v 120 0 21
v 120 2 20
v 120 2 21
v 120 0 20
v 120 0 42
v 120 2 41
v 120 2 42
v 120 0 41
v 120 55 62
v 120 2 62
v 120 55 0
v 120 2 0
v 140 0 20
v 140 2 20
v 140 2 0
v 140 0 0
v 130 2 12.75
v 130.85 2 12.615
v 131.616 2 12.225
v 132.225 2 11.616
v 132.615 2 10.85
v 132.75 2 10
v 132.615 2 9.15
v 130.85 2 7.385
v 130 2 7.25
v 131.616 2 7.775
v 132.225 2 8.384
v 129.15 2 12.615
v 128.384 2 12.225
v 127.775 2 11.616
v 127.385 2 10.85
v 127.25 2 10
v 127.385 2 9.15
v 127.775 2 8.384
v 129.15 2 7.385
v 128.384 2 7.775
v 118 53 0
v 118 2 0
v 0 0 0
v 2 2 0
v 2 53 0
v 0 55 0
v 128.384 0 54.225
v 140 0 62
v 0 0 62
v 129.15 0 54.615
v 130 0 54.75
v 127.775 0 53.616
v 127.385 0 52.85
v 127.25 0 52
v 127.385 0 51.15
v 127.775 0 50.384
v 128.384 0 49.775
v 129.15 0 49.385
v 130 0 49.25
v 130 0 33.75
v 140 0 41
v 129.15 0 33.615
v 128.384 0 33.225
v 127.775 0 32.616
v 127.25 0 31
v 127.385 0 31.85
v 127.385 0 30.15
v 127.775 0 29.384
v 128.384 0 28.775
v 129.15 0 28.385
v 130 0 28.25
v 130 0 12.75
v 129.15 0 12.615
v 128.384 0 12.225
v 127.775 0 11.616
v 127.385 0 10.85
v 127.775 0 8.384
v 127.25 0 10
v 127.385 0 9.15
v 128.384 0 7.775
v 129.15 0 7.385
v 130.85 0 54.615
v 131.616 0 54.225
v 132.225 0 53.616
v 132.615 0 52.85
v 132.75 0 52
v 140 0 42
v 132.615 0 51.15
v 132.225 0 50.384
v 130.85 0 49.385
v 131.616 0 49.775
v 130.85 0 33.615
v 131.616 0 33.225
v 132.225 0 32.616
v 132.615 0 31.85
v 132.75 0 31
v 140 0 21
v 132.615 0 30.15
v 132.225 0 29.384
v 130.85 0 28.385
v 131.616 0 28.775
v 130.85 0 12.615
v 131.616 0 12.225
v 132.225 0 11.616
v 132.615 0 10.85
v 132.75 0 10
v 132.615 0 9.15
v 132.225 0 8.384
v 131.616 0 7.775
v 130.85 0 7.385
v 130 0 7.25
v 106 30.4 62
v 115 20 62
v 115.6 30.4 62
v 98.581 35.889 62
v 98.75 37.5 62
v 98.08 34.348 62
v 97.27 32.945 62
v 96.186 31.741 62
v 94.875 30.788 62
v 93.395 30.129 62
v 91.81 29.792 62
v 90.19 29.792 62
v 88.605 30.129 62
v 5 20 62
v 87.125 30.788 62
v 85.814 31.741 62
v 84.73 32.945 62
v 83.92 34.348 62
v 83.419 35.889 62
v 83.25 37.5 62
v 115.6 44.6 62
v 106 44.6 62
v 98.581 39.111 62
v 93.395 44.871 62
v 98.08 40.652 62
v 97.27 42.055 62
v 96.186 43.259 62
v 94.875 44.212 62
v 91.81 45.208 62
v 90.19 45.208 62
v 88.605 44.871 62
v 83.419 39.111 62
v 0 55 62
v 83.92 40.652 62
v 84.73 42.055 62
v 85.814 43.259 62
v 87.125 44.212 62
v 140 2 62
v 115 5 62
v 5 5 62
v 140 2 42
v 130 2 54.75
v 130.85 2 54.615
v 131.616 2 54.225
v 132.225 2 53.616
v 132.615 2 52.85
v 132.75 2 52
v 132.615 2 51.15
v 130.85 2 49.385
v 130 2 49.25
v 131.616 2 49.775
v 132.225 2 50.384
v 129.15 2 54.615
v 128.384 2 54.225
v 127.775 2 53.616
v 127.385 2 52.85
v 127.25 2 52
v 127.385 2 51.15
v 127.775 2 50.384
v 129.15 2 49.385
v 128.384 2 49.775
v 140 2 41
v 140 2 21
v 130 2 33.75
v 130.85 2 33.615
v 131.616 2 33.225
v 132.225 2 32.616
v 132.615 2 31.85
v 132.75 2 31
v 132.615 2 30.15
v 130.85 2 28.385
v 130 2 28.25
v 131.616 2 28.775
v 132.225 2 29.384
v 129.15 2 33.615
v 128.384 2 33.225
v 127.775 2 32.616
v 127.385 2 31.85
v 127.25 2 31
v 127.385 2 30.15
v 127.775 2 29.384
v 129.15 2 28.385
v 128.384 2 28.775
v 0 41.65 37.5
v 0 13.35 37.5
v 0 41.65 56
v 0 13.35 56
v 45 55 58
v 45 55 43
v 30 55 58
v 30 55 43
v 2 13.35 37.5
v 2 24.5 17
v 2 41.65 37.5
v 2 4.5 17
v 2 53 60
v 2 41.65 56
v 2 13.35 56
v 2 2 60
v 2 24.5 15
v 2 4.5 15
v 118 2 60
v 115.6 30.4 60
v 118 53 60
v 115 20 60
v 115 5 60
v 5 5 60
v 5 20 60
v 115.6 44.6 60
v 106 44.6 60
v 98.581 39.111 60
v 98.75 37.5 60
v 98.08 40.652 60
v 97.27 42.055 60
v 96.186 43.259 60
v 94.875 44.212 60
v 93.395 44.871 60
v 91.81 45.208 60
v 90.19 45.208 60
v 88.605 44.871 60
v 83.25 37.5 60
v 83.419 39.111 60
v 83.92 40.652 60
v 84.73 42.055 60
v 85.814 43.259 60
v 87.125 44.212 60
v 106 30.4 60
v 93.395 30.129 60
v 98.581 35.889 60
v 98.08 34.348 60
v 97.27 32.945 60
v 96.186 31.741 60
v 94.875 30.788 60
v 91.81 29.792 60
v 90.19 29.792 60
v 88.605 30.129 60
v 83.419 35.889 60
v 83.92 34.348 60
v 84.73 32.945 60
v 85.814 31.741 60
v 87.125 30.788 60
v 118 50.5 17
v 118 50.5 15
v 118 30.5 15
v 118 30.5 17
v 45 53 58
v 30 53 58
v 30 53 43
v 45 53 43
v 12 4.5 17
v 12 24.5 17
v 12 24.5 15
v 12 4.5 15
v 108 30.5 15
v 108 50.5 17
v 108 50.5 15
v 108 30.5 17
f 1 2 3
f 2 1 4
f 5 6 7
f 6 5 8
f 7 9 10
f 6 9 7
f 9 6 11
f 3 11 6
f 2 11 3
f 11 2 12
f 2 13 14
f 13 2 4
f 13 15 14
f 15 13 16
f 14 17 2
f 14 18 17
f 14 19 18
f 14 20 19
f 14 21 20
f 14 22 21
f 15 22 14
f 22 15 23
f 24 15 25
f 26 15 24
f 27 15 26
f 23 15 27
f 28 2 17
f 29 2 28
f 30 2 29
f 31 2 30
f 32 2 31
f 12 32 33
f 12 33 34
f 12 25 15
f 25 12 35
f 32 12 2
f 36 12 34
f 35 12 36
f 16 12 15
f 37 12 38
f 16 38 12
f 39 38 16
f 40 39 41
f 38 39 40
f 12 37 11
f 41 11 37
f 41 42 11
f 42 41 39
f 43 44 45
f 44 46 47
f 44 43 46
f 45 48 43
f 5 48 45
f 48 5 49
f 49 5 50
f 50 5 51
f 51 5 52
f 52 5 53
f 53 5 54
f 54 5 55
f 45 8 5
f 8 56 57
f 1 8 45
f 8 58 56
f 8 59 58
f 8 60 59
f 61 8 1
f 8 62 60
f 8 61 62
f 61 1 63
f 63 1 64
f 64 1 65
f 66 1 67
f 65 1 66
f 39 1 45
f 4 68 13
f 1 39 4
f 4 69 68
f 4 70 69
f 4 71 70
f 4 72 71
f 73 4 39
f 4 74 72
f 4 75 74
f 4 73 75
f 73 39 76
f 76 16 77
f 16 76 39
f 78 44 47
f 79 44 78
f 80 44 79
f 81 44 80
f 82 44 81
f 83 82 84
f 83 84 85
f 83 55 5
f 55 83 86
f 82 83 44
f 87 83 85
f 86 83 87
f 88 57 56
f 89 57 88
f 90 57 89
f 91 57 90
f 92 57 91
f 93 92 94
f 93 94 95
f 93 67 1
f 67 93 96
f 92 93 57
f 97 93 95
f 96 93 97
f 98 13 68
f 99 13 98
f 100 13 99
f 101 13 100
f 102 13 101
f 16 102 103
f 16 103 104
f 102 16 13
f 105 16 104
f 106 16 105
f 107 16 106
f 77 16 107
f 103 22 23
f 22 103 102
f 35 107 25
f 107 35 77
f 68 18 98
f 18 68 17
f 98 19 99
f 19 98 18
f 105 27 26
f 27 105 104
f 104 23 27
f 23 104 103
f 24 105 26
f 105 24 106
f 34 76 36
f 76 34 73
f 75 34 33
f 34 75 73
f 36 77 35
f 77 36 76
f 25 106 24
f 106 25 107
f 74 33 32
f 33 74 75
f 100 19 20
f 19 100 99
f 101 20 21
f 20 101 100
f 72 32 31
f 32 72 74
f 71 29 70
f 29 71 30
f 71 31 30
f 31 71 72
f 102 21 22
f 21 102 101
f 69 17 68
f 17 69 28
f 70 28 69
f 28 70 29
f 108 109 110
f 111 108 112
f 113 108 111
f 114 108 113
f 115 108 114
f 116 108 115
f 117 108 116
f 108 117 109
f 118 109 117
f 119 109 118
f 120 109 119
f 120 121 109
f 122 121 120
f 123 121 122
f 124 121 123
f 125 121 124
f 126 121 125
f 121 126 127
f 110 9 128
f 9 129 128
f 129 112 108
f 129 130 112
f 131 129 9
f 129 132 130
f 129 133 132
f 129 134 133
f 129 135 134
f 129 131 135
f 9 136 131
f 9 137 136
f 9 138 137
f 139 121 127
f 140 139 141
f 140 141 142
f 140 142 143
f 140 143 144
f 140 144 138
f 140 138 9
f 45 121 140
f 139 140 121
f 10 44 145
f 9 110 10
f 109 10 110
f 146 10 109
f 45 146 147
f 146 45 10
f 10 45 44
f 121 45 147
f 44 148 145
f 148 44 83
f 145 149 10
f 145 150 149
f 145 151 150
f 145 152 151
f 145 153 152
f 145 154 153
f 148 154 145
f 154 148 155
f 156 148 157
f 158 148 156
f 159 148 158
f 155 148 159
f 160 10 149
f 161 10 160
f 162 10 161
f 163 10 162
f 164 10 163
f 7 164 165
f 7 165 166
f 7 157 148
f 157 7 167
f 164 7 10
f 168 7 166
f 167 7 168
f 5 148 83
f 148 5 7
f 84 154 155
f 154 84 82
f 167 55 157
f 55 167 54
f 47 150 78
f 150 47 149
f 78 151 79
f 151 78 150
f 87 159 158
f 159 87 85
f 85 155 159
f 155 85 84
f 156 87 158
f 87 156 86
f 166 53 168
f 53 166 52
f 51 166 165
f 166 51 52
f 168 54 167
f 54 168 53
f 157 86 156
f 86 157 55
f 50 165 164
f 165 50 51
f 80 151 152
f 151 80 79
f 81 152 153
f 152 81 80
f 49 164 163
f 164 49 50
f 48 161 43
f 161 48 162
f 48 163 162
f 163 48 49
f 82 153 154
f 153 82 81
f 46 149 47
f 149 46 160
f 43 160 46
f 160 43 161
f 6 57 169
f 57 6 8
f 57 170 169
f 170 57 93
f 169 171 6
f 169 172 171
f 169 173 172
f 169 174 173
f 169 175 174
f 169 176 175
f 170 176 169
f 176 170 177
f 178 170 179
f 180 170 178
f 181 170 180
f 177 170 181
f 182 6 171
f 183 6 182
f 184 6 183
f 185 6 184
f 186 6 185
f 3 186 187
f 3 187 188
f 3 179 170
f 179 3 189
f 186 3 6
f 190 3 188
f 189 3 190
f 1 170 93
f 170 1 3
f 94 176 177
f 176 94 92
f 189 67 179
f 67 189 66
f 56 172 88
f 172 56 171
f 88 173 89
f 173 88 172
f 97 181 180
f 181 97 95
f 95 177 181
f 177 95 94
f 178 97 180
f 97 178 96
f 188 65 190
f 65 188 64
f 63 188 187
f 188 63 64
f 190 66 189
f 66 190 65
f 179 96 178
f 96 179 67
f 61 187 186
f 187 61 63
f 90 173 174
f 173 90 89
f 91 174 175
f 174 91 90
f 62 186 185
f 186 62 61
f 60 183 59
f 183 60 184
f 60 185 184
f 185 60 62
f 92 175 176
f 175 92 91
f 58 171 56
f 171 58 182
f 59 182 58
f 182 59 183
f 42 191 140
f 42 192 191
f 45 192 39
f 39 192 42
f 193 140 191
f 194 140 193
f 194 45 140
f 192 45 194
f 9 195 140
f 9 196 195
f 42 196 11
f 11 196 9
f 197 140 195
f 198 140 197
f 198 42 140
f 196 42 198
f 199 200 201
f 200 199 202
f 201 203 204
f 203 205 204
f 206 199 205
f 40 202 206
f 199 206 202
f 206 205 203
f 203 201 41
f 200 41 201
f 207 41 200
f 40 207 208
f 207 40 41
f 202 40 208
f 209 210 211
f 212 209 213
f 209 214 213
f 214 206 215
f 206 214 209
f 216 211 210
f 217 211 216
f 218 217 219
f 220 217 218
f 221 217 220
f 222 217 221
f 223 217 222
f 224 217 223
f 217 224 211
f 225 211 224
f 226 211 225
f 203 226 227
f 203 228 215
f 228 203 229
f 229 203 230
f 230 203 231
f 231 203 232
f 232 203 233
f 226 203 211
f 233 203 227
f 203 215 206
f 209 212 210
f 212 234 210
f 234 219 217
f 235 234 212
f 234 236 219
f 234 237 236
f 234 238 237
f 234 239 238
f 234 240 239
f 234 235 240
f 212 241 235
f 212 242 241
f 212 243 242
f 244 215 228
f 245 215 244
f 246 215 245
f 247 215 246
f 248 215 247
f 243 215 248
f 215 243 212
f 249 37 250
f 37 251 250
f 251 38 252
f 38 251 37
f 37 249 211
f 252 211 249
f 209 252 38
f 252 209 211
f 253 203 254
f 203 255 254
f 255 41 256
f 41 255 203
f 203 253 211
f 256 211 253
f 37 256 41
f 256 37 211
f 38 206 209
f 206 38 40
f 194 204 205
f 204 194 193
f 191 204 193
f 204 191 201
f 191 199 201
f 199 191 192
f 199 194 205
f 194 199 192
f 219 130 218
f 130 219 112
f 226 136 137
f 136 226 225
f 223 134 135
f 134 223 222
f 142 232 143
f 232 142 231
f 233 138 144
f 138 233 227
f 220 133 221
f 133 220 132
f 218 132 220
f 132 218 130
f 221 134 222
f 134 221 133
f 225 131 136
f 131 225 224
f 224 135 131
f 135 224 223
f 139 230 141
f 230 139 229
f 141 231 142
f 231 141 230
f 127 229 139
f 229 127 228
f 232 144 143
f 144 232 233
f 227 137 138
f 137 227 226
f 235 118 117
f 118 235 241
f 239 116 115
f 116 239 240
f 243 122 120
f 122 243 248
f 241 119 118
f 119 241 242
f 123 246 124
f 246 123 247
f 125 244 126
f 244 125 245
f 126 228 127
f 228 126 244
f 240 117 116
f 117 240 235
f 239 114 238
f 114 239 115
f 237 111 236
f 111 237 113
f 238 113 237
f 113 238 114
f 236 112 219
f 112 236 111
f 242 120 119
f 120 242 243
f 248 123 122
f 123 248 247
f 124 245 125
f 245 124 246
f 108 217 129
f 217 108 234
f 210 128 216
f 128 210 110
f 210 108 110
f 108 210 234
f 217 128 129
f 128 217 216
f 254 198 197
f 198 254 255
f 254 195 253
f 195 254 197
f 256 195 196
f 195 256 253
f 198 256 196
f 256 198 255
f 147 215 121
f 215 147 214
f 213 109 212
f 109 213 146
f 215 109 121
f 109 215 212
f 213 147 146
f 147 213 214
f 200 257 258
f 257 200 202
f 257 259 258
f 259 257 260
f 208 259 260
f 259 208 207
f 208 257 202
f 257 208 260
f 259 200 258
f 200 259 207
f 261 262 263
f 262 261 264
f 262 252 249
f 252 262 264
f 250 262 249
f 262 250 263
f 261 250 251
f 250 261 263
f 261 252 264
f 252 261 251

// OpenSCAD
BaseWidth = 116;
BaseDepth = 51;
BaseHeightTop = 60;

WallThickness = 2;

AnchorWidth = 20;
AnchorHeight = 20;
AhcnorHoleDiameter = 5.5;

PowerInputHoleWidth = 28.3;
PowerInputHoleHeight= 18.5;

ButtonHoleDiameter = 15.5;

PowerSwithLength = 14.2;
PowerSwithWidth = 9.6;

BackWindowWidth  = 110;
BackWindowHeight = 15;

// Top main body
difference() {
    cube(size=[BaseWidth+2*WallThickness, BaseDepth+2*WallThickness, BaseHeightTop+WallThickness], center=false);
    translate([WallThickness, WallThickness, 0])
    cube(size=[BaseWidth, BaseDepth, BaseHeightTop], center=false);

    // Power Input Hole
    translate([0, BaseDepth/2-PowerInputHoleWidth/2+WallThickness, BaseHeightTop-PowerInputHoleHeight-WallThickness*2])
    cube(size=[WallThickness, PowerInputHoleWidth, PowerInputHoleHeight], center=false);

    // Button hole
    translate([BaseWidth/2+10-7+30, BaseDepth/2+WallThickness-10+20, BaseHeightTop])
    cylinder(h=WallThickness, d=ButtonHoleDiameter, center=false, $fn=30);

    // Power switch hole
    translate([BaseWidth - 10, BaseDepth/2-PowerSwithLength/2+WallThickness-10+20, BaseHeightTop])
    cube(size=[PowerSwithWidth, PowerSwithLength, WallThickness], center=false);

    // Small Window for Relay LEDs
    translate([30, BaseDepth+WallThickness, 33+10])
    cube(size=[15, WallThickness, 15], center=false);

    // Back Window
    translate([5, 5, BaseHeightTop])
    cube(size=[BackWindowWidth, BackWindowHeight, WallThickness], center=false);

}





// Inside anchor 1
translate([WallThickness, BaseDepth/2-AnchorWidth/2+WallThickness-13, BaseHeightTop/2-15])
cube(size=[AnchorHeight/2, AnchorWidth, WallThickness], center=false);

// Inside anchor 2
translate([BaseWidth-AnchorWidth/2+WallThickness, BaseDepth/2-AnchorWidth/2+WallThickness+13, BaseHeightTop/2-15])
cube(size=[AnchorHeight/2, AnchorWidth, WallThickness], center=false);

// Side anchor 1
translate([BaseWidth+WallThickness*2, 0, 0])
    difference() {
        cube(size=[AnchorHeight, WallThickness, AnchorWidth], center=false);
        translate([AnchorHeight/2, 0, AnchorWidth/2])
        rotate([-90, 0, 0])
        cylinder(h=WallThickness, d=AhcnorHoleDiameter, center=false, $fn=20);
    }
   
// Side anchor 2
translate([BaseWidth+WallThickness*2, 0, BaseHeightTop+WallThickness-AnchorWidth])
    difference() {
        cube(size=[AnchorHeight, WallThickness, AnchorWidth], center=false);
        translate([AnchorHeight/2, 0, AnchorWidth/2])
        rotate([-90, 0, 0])
        cylinder(h=WallThickness, d=AhcnorHoleDiameter, center=false, $fn=20);
    }
    

// Side anchor 3
translate([BaseWidth+WallThickness*2, 0, (BaseHeightTop+WallThickness-AnchorWidth)/2])
    difference() {
        cube(size=[AnchorHeight, WallThickness, AnchorWidth], center=false);
        translate([AnchorHeight/2, 0, AnchorWidth/2])
        rotate([-90, 0, 0])
        cylinder(h=WallThickness, d=AhcnorHoleDiameter, center=false, $fn=20);
    }
    

    
